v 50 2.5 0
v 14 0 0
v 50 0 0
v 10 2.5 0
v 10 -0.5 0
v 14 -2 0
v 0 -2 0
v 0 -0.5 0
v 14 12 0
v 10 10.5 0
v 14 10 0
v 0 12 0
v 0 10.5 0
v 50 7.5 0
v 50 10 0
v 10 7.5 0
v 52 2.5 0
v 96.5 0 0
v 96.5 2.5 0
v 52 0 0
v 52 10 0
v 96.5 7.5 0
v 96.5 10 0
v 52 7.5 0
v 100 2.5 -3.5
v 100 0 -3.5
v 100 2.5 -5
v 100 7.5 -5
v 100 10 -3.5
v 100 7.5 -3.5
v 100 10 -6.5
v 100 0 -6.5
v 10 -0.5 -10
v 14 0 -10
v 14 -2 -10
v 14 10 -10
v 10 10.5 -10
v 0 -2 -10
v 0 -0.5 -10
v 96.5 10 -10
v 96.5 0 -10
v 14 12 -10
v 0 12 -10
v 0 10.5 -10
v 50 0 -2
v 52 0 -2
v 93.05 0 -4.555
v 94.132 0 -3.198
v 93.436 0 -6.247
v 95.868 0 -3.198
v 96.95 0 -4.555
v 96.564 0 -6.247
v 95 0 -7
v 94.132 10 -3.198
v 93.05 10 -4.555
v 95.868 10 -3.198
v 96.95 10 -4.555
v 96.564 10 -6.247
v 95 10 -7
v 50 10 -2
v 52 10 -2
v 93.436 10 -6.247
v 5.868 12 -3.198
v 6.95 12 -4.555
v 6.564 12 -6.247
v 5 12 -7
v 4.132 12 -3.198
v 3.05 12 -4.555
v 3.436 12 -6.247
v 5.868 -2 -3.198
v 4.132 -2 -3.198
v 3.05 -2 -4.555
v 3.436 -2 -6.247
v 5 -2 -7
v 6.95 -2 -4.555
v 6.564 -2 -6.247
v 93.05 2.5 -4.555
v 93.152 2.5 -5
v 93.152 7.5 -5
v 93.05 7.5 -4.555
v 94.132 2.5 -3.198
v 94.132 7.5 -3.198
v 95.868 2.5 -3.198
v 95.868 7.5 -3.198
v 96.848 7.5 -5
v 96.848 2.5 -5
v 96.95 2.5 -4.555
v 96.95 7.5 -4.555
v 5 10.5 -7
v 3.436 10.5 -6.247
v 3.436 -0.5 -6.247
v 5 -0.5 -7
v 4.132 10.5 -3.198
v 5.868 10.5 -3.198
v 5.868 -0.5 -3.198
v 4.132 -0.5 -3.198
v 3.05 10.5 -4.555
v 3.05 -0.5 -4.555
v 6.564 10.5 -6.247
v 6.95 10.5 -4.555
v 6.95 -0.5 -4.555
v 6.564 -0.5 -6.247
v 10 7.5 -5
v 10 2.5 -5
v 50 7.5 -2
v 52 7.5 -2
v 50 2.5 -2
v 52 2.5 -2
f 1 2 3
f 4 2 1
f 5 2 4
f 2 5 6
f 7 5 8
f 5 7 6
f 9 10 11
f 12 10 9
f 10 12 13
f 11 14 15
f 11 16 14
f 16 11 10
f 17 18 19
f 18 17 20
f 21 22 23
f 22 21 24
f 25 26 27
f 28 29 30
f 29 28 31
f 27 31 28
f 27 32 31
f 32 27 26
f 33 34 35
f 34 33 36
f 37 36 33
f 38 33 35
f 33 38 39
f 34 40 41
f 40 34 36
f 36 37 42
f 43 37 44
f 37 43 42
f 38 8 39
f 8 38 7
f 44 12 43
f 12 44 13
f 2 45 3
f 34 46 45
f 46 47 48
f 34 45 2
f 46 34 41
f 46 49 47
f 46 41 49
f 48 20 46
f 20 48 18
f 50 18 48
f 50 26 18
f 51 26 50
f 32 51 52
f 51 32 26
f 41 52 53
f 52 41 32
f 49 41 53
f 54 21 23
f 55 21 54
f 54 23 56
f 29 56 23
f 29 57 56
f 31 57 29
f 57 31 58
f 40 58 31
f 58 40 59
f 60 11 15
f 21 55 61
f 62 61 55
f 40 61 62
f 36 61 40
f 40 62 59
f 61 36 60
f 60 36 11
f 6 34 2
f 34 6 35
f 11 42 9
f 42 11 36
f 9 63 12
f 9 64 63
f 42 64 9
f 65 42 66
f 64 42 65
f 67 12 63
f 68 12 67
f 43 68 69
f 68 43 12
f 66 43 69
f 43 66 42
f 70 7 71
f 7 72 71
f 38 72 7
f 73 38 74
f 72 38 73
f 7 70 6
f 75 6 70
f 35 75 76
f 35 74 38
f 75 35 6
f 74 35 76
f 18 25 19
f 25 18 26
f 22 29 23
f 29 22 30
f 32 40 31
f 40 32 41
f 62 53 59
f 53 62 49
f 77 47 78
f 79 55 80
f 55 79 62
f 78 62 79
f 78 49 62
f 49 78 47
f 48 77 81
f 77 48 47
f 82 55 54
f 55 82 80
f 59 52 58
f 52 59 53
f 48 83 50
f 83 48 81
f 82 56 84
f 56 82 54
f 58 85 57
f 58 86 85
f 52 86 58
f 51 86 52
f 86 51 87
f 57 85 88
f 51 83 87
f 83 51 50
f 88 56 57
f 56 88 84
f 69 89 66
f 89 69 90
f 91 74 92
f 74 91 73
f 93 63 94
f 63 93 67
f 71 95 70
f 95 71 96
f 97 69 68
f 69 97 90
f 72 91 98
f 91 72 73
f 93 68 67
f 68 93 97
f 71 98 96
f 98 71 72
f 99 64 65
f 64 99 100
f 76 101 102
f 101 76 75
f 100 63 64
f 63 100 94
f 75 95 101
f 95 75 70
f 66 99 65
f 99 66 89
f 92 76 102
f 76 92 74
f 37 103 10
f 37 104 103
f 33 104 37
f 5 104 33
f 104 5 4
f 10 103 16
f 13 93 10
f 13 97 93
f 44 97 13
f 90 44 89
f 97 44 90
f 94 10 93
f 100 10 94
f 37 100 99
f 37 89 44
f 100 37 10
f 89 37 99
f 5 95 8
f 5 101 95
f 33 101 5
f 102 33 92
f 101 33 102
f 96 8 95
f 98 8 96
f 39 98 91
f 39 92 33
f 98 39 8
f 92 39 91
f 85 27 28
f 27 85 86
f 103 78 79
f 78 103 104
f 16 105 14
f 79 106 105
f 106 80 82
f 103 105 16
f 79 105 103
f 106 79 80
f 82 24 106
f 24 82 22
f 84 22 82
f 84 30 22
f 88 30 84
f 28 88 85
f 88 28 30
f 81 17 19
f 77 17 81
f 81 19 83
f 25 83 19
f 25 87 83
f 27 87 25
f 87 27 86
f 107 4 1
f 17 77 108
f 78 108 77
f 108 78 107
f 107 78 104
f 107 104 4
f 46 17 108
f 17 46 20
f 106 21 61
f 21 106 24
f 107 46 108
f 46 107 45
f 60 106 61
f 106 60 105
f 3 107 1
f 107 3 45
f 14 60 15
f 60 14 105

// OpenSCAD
/*
Erica Umlor Wire Following Sensor Holder for MSE4777

Created: 04/16/2020
Description: This is for my GrowBot project
for senior design. This is the middle part of the 
wire holder. One end connects to the end that connects
to the frame of our robot and the other end connects
to the end that has a slot for the inductor to sit
in. Don't try to edit this code. Most of it is not
parametric, and it should fit just fine with this
this project. 
*/


wireHolder();

// values
h1 = 100;    // length 
holeL = 15;
holeR = 2;
brace = 4;
w = 10;

module wireHolder() {
  rotate([0,90,0]) {
     difference() {
       base();
       holes();
    }
  }
}

module base() {
    union() {
        // main body
        translate([0,0,0])
        cube([w,w,h1]);
        
        // bottom bracket
        translate([0,-brace/2,0])
        cube([w,w+brace,w+brace]);
    }
}

module holes() {
    // top hole
    translate([w/2,0,h1-w/2])
    rotate([-90,0,0])
    cylinder(holeL,holeR,holeR);

    // bottom hole
    translate([w/2,-(holeL-10)/2,w/2])
    rotate([-90,0,0])
    cylinder(holeL,holeR,holeR);
    
    // bracket cutout
    translate([0,-0.5,0])
    cube([w,w+1,w]);
    
    // wire slot
    translate([0,w/4,0])
    cube([w/2,w/2,h1]);
    
    // chamfered corners
    rotate([0,0,270]){
        translate([-w,0,0]) {
            translate([0,-w/4,h1-w/2-1])
            rotate([45,0,0])
            cube([w,w,w]);

            translate([0,w*5/4,h1-w/2-1])
            rotate([45,0,0])
            cube([w,w,w]);
        }
    }   
    // ziptie slot
    translate([0,0,h1/2])
    cube([holeR,w,holeR]);
}
